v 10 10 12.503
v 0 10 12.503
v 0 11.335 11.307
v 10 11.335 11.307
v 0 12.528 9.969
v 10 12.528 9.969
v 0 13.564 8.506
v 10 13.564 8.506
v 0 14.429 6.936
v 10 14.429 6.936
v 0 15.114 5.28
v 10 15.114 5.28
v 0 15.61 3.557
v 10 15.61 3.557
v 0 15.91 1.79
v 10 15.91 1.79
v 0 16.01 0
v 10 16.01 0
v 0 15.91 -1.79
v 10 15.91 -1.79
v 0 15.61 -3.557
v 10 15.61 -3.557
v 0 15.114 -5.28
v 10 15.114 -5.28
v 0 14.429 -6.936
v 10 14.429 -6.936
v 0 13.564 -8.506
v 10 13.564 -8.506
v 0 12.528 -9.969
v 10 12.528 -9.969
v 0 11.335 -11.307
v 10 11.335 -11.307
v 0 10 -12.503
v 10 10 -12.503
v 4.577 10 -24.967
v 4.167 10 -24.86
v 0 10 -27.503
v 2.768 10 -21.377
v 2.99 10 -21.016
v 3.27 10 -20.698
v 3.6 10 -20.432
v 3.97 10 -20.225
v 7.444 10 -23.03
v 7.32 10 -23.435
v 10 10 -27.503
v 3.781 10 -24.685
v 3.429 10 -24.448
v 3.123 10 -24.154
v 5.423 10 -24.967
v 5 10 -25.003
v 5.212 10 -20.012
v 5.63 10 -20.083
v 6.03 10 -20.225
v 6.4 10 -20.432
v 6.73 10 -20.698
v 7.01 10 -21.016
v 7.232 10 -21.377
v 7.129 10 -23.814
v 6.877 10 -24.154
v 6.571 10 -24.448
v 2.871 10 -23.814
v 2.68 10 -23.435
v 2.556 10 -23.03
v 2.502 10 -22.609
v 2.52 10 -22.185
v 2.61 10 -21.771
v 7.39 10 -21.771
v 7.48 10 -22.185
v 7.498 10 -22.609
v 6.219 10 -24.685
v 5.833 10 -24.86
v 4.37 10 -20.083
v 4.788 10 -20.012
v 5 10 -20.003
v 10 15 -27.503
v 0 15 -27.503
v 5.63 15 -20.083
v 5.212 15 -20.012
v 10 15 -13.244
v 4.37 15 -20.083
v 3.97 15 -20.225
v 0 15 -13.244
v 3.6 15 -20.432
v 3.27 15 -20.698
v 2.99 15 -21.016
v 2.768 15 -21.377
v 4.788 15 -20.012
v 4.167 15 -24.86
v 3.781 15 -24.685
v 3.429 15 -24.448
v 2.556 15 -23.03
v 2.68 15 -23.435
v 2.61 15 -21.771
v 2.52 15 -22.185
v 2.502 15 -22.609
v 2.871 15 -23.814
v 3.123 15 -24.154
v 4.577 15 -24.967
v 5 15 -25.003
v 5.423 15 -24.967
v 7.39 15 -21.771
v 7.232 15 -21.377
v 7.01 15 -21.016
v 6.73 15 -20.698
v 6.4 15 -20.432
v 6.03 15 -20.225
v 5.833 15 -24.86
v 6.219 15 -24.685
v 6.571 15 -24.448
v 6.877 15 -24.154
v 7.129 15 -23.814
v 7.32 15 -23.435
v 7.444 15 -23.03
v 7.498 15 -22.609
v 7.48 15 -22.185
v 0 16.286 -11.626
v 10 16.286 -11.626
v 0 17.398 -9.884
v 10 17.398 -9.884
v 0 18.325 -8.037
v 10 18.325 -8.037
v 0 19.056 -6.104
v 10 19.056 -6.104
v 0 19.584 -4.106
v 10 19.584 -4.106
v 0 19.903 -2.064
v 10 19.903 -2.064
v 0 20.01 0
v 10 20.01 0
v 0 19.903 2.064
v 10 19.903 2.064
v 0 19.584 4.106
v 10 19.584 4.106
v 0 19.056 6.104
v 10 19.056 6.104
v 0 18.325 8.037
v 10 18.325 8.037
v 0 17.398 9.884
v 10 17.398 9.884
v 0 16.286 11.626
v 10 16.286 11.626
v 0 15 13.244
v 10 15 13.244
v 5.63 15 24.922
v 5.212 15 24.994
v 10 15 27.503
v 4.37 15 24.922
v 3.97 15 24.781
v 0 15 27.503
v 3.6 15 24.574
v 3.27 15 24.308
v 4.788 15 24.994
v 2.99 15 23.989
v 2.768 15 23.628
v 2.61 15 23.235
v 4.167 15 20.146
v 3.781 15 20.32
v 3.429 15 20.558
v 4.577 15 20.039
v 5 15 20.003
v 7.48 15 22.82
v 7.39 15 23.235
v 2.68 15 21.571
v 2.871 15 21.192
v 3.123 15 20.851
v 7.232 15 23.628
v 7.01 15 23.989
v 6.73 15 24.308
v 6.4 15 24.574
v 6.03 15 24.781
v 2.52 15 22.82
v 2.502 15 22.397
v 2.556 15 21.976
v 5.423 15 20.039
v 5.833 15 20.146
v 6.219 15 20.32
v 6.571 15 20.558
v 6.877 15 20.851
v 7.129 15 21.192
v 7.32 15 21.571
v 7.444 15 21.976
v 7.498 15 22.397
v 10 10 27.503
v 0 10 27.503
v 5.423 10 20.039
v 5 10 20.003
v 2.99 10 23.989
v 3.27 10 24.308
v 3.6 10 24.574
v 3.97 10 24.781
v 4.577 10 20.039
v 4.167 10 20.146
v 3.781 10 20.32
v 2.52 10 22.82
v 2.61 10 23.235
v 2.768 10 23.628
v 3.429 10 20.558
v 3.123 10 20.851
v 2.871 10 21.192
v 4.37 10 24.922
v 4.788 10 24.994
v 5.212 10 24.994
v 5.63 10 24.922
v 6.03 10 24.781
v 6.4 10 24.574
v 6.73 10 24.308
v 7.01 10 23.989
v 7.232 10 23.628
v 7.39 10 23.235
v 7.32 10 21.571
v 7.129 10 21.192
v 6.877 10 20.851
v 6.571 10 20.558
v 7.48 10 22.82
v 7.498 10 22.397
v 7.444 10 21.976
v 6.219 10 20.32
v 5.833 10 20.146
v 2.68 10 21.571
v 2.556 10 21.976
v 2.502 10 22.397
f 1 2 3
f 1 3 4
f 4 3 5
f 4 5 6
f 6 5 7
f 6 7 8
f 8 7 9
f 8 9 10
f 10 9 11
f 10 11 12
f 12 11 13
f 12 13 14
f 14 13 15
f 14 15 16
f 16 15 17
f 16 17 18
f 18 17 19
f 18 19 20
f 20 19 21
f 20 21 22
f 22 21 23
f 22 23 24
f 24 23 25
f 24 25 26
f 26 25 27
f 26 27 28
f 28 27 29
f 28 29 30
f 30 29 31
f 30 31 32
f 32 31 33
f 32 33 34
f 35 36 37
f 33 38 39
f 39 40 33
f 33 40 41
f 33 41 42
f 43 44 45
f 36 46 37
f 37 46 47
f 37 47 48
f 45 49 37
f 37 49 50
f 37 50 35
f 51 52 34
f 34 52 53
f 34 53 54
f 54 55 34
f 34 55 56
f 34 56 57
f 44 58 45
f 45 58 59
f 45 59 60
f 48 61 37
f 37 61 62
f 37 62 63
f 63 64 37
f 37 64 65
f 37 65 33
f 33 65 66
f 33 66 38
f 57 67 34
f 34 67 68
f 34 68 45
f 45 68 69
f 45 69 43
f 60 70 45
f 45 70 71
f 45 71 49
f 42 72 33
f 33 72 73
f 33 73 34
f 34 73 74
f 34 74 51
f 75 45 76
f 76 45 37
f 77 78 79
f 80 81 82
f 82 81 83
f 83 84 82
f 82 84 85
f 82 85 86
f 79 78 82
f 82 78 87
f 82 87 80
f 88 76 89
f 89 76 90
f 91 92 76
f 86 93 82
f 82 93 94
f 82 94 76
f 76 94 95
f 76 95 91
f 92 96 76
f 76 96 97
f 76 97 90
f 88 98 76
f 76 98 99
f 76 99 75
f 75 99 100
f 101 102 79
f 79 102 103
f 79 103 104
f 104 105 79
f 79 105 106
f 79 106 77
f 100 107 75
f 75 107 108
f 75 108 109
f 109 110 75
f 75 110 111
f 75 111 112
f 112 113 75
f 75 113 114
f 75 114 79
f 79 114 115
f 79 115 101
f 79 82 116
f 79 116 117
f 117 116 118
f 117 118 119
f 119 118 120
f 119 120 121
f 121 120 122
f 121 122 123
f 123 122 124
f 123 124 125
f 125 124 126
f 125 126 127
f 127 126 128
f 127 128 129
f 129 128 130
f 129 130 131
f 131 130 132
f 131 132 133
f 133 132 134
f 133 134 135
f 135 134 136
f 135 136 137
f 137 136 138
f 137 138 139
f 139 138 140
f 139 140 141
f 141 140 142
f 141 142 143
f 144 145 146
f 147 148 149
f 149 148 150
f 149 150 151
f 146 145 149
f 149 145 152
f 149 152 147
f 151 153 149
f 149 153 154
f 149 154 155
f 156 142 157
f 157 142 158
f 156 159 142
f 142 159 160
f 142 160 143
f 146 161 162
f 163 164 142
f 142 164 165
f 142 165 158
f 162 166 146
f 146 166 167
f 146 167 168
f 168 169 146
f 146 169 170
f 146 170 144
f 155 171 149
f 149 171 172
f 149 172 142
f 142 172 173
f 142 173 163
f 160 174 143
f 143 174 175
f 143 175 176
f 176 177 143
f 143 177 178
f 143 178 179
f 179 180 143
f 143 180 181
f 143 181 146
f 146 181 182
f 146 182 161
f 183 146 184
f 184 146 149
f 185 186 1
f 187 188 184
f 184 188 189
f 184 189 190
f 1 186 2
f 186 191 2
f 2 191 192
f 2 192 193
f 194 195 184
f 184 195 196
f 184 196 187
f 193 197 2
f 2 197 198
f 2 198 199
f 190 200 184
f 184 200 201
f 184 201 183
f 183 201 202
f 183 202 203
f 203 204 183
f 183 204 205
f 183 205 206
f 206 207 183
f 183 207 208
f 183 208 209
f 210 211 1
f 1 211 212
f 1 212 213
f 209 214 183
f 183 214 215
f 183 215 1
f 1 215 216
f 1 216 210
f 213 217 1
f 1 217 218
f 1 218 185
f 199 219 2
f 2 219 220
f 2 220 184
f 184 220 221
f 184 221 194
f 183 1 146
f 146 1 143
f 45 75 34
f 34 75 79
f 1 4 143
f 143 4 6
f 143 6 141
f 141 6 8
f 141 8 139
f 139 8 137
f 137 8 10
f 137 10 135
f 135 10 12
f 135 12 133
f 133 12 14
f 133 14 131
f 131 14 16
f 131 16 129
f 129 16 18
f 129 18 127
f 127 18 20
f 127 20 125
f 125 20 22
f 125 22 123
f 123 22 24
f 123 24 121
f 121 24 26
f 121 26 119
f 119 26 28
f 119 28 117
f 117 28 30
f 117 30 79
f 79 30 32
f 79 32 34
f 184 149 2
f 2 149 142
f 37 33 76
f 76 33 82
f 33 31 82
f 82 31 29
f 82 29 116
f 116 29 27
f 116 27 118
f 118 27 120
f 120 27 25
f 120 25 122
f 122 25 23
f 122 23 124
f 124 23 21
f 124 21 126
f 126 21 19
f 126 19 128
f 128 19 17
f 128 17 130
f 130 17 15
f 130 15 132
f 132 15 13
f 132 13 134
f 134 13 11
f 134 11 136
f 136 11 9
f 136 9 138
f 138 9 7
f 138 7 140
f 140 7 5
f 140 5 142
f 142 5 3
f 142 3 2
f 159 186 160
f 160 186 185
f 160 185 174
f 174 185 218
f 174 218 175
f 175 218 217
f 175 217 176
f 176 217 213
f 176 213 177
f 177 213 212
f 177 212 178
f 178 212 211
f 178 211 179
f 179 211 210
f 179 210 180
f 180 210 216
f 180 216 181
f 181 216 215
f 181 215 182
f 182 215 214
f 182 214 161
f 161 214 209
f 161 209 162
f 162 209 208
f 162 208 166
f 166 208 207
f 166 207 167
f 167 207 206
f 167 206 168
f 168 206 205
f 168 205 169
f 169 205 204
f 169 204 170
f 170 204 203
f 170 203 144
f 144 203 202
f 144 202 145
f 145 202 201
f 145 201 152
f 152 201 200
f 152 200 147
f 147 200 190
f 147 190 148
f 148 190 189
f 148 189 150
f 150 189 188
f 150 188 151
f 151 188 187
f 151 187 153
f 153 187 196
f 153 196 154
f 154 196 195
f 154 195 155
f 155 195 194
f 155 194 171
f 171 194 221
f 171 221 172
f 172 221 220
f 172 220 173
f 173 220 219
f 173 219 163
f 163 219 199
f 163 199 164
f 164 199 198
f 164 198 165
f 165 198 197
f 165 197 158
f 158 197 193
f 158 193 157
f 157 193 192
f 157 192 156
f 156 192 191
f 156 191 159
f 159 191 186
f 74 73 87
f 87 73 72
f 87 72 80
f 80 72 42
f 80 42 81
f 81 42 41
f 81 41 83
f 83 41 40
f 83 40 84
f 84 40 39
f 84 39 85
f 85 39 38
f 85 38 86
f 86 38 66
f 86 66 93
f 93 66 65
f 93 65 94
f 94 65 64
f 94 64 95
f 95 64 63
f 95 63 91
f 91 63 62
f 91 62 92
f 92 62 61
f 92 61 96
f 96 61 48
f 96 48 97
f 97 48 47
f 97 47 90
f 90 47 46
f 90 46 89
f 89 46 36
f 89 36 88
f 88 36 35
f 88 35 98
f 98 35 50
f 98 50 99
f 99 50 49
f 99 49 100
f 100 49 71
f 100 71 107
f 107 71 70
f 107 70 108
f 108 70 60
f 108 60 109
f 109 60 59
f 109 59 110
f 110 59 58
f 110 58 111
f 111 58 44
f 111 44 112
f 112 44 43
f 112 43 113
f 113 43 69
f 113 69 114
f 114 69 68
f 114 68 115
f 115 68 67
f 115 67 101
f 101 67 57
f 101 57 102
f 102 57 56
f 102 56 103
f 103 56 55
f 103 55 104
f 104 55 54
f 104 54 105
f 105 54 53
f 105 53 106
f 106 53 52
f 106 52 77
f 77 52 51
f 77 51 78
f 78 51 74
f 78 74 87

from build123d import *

# Parameters (mm, degrees)
BASE_DEPTH           = 10
ESQUISSE5_R          = 2.5
VIDE_ACCES_VIS_DEPTH = 31.929020524


with BuildPart() as part:
    # Esquisse2 → BASE (new body)
    with BuildSketch(Plane(origin=(0, 0, 0), x_dir=(0, 0, -1), z_dir=(1, 0, 0))):
        with BuildLine():
            Line((-27.502803686, 10), (-14.361406616, 10))
            Line((-14.361406616, 10), (-12.502803686, 10))
            ThreePointArc((-12.502803686, 10), (0, 16.01), (12.502803686, 10))
            Line((12.502803686, 10), (14.361406616, 10))
            Line((14.361406616, 10), (22.502803686, 10))
            Line((22.502803686, 10), (27.502803686, 10))
            Line((27.502803686, 10), (27.502803686, 15))
            Line((27.502803686, 15), (13.24387028, 15))
            ThreePointArc((13.24387028, 15), (0, 20.01), (-13.24387028, 15))
            Line((-13.24387028, 15), (-27.502803686, 15))
            Line((-27.502803686, 15), (-27.502803686, 10))
        make_face()
    extrude(amount=BASE_DEPTH)

    # Esquisse5 → VIDE ACCES VIS (cut, through all)
    with BuildSketch(Plane.XZ.offset(-10)):
        with Locations(Location((5, 22.502803686, 0), (0, 0, 270))):
            Circle(ESQUISSE5_R)
        with Locations(Location((5, -22.502803686, 0), (0, 0, 270))):
            Circle(ESQUISSE5_R)
    extrude(amount=-VIDE_ACCES_VIS_DEPTH, mode=Mode.SUBTRACT)


solid = part.part
